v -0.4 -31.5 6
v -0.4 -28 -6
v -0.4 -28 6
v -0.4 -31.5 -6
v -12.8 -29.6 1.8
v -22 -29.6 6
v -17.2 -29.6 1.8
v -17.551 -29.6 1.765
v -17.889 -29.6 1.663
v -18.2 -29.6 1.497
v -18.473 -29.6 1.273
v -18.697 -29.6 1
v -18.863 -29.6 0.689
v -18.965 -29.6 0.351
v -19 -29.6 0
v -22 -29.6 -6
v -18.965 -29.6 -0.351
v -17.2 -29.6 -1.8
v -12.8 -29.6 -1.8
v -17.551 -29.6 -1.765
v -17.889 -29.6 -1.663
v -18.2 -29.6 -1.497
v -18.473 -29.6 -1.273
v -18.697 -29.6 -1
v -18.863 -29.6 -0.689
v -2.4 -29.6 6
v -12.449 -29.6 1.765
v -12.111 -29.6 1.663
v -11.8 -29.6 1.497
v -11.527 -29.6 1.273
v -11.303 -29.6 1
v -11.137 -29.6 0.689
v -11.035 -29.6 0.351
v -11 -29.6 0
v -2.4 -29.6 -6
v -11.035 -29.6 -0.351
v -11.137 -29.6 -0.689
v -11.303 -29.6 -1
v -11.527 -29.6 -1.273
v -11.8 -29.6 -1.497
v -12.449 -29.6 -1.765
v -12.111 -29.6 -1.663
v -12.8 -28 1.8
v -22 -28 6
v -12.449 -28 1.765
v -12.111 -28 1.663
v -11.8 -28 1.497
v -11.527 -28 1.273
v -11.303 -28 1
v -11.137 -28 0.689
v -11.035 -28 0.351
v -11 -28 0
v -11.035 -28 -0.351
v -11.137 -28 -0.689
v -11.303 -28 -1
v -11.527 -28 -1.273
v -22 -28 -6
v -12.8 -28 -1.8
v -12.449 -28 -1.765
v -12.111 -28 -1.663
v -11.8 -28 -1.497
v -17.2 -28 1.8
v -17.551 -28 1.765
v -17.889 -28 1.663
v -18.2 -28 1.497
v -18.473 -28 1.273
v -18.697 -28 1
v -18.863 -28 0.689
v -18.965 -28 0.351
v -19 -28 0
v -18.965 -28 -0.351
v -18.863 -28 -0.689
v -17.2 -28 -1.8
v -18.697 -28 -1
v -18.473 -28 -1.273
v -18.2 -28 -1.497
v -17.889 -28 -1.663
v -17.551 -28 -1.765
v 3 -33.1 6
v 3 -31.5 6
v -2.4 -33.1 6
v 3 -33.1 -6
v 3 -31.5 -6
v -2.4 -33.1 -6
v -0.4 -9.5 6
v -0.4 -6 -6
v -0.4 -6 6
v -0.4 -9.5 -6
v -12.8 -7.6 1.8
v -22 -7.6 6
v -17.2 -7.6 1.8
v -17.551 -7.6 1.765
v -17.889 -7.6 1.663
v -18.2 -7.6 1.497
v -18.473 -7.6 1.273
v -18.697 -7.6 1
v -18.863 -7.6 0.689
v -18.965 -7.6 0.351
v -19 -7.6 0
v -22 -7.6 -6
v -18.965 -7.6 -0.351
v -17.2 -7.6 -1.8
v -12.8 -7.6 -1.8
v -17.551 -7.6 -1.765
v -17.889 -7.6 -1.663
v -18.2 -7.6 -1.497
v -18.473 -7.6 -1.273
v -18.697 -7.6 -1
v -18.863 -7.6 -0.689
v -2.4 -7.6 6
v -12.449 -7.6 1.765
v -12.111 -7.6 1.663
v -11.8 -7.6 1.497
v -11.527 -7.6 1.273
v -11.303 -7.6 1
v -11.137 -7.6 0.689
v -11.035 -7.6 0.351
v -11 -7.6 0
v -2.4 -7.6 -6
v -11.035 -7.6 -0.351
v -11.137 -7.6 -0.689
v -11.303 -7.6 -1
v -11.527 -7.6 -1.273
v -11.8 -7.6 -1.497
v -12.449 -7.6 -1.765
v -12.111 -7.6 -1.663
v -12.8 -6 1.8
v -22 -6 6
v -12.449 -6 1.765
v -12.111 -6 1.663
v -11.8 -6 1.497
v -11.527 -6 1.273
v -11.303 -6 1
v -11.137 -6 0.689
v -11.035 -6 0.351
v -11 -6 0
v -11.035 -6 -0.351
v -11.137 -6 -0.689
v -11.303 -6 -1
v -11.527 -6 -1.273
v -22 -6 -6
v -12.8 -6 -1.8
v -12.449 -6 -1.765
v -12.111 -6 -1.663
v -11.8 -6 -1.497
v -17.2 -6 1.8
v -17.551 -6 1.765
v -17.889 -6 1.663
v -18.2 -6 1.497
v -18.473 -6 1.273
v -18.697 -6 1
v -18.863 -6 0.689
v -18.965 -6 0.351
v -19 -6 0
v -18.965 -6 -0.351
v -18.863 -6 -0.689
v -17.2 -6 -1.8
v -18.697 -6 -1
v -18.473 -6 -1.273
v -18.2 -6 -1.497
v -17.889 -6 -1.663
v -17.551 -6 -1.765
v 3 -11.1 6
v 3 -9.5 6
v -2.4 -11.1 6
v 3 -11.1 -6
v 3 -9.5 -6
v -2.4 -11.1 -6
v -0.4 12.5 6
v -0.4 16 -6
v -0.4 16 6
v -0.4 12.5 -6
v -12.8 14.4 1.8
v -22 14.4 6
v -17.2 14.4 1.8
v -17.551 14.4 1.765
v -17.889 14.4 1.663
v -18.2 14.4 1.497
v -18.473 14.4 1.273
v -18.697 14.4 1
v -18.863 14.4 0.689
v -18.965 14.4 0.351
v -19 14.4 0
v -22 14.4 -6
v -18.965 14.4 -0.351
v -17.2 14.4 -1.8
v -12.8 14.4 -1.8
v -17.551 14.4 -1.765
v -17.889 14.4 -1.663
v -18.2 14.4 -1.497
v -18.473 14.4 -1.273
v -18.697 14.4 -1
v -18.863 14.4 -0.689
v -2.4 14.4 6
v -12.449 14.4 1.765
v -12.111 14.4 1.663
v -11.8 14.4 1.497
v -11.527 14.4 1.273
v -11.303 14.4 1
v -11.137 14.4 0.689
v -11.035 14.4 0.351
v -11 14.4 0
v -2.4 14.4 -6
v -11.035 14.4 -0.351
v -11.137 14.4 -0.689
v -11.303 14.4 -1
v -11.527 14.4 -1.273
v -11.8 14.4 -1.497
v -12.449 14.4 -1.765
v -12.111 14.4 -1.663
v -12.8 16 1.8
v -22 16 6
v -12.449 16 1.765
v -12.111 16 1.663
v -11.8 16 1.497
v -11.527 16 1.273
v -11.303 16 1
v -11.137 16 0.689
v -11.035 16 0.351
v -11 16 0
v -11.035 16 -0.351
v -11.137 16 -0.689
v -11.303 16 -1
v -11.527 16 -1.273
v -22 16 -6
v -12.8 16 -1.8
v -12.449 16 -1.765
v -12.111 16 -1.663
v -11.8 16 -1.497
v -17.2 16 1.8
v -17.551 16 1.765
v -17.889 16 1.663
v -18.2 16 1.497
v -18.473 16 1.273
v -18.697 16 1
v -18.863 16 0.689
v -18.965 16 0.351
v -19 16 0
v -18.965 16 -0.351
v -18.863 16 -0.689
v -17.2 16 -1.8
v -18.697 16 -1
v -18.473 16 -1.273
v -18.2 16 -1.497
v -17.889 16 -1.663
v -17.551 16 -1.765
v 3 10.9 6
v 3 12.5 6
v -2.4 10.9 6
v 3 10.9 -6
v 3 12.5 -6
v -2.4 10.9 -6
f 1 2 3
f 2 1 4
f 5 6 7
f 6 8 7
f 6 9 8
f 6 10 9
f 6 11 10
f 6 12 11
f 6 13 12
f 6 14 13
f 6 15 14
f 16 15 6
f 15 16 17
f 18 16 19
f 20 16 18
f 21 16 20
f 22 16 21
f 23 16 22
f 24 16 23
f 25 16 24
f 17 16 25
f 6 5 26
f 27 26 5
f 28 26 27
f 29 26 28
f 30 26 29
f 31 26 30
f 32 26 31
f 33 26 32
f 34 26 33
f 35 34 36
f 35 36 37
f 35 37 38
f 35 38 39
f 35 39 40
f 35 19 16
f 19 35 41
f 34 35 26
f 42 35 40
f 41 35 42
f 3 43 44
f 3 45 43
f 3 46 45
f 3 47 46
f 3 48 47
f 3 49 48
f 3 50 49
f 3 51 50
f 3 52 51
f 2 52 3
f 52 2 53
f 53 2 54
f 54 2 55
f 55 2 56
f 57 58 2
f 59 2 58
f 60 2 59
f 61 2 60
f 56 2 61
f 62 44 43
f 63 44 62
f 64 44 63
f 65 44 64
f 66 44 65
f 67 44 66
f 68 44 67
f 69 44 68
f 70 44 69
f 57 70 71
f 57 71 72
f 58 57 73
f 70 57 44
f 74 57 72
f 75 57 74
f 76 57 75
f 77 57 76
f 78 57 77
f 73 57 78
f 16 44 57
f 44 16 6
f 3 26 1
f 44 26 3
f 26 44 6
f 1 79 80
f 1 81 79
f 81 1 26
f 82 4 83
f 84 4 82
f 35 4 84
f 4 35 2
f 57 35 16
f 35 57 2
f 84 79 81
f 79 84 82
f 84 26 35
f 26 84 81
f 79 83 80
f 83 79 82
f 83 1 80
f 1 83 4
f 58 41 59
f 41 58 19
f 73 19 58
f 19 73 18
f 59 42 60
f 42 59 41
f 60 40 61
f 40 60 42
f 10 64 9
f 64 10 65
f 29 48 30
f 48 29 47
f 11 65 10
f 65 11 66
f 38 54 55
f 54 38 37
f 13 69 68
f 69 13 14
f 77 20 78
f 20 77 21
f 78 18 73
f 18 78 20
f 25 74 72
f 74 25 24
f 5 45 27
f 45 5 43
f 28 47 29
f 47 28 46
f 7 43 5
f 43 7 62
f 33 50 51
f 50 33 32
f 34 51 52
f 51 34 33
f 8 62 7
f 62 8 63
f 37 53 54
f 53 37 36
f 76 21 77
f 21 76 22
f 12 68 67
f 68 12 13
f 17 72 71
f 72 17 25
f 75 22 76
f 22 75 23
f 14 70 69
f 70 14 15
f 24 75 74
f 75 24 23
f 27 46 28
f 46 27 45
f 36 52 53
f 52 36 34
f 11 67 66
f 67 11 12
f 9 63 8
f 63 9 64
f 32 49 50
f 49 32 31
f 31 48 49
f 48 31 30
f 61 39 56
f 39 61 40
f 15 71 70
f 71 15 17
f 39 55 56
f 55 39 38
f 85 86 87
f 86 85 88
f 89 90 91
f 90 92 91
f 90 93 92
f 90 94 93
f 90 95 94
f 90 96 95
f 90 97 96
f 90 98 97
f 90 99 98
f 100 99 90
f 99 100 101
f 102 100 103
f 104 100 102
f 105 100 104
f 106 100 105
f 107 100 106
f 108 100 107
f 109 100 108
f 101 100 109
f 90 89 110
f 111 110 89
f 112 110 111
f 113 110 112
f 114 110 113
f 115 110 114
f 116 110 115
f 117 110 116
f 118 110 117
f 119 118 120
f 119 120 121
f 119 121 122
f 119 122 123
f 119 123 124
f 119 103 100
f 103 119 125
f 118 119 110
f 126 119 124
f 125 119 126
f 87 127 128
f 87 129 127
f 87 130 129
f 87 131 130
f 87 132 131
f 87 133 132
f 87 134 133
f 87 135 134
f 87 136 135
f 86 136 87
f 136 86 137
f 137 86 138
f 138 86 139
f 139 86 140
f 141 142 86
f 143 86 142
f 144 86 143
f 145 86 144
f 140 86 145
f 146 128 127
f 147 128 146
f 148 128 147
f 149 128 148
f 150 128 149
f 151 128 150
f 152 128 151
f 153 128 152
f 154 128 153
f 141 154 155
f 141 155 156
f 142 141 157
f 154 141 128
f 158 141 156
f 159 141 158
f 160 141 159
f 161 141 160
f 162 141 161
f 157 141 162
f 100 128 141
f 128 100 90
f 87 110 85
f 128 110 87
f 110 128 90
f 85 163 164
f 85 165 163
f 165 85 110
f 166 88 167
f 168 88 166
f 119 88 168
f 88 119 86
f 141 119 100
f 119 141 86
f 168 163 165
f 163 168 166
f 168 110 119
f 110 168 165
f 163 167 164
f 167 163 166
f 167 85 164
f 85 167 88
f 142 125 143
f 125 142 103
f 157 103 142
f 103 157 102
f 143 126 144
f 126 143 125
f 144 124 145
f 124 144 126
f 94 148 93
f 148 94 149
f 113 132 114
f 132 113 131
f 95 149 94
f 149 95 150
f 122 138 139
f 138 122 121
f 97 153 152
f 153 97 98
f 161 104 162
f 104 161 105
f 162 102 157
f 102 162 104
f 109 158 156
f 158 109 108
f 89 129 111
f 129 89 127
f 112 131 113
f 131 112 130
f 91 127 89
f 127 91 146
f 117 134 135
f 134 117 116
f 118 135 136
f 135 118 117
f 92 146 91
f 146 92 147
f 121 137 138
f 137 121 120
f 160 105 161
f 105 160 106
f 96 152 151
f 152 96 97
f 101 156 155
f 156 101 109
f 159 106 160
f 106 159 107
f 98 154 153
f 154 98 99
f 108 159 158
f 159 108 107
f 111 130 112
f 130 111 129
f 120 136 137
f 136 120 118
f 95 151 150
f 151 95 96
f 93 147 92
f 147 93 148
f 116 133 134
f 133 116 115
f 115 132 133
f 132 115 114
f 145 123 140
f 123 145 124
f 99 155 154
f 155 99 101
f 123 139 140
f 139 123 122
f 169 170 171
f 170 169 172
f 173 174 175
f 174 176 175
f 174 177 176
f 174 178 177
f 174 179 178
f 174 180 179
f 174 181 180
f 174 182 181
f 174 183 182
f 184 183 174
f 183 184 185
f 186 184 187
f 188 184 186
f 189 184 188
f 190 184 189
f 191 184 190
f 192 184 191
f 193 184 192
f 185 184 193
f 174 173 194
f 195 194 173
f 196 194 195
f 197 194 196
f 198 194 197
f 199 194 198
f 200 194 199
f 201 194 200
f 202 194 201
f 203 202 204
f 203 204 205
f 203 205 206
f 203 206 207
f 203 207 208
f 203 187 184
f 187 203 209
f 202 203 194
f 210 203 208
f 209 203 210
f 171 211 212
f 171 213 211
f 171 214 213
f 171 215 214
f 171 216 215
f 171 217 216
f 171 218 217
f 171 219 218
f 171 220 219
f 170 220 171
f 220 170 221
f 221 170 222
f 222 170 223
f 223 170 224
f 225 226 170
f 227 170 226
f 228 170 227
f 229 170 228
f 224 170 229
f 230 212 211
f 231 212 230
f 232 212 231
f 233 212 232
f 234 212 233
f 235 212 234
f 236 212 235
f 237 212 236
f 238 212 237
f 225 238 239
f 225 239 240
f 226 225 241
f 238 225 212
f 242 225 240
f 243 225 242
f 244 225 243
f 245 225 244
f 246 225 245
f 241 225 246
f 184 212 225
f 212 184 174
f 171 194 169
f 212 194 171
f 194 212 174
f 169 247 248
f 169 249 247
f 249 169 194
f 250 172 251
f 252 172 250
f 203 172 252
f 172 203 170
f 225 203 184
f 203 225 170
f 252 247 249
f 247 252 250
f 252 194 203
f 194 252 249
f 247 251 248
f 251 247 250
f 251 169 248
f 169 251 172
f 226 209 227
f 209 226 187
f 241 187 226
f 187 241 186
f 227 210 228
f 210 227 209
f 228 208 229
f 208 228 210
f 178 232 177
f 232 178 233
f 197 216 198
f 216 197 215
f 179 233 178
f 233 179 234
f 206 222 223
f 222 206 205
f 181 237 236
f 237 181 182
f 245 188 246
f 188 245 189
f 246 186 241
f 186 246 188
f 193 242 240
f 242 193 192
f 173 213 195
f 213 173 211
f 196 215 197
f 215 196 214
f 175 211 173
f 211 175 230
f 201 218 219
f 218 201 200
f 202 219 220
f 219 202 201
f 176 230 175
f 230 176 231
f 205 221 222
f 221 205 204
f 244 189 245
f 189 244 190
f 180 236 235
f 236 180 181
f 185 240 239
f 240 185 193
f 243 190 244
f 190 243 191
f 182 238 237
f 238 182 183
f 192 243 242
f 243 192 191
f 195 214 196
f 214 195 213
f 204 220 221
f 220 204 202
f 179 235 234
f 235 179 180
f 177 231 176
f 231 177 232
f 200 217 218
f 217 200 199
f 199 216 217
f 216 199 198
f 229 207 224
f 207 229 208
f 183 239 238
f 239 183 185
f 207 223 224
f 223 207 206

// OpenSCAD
// file: glass-clamp.scad
// Slotted glass clamp for the BIQU Magician bed.
// x runs radially: x=0 is the glass edge, glass is at x>0, the bed screw is near x=-15.
// z=0 is the top of the acrylic lobe.
glass   = 3.2;   // 1/8 inch glass
gap_z   = 0.3;   // clearance, glass top to lip underside
base_t  = 1.6;   // tab thickness under the screw head
lip_t   = 1.6;   // lip roof thickness
overhang= 3.0;   // lip reach over the glass edge
gap_x   = 0.4;   // clearance, riser to glass edge
riser_t = 2.0;
w       = 12;    // tab width
slot_c  = -15;   // slot centre = screw distance from the glass edge
slot_l  = 8;     // slot length (travel)
slot_w  = 3.6;   // M3 clearance
tail    = 7;     // tab length behind the slot centre

xe = -gap_x;
zl0 = glass + gap_z;
zl1 = zl0 + lip_t;
back = slot_c - tail;

module clamp() {
    difference() {
        union() {
            translate([back, -w/2, 0]) cube([xe - back, w, base_t]);                 // base
            translate([xe - riser_t, -w/2, 0]) cube([riser_t, w, zl1]);               // riser
            translate([xe - riser_t, -w/2, zl0]) cube([overhang - (xe - riser_t), w, lip_t]); // lip
        }
        // slotted M3 hole
        hull() for (s = [-1, 1])
            translate([slot_c + s * (slot_l - slot_w) / 2, 0, -1]) cylinder(d = slot_w, h = base_t + 2, $fn = 32);
    }
}

clamp();
// main file
// Three glass clamps printed on their side: the L profile lies flat in every layer,
// so the lip has nothing to droop over, and the spacing gives each layer time to cool.
use <glass-clamp.scad>;
for (i = [-1, 0, 1])
    translate([0, i * 22, 0])
        rotate([90, 0, 0])            // old y (width) becomes the print height
            translate([0, 0, 6]) clamp();
